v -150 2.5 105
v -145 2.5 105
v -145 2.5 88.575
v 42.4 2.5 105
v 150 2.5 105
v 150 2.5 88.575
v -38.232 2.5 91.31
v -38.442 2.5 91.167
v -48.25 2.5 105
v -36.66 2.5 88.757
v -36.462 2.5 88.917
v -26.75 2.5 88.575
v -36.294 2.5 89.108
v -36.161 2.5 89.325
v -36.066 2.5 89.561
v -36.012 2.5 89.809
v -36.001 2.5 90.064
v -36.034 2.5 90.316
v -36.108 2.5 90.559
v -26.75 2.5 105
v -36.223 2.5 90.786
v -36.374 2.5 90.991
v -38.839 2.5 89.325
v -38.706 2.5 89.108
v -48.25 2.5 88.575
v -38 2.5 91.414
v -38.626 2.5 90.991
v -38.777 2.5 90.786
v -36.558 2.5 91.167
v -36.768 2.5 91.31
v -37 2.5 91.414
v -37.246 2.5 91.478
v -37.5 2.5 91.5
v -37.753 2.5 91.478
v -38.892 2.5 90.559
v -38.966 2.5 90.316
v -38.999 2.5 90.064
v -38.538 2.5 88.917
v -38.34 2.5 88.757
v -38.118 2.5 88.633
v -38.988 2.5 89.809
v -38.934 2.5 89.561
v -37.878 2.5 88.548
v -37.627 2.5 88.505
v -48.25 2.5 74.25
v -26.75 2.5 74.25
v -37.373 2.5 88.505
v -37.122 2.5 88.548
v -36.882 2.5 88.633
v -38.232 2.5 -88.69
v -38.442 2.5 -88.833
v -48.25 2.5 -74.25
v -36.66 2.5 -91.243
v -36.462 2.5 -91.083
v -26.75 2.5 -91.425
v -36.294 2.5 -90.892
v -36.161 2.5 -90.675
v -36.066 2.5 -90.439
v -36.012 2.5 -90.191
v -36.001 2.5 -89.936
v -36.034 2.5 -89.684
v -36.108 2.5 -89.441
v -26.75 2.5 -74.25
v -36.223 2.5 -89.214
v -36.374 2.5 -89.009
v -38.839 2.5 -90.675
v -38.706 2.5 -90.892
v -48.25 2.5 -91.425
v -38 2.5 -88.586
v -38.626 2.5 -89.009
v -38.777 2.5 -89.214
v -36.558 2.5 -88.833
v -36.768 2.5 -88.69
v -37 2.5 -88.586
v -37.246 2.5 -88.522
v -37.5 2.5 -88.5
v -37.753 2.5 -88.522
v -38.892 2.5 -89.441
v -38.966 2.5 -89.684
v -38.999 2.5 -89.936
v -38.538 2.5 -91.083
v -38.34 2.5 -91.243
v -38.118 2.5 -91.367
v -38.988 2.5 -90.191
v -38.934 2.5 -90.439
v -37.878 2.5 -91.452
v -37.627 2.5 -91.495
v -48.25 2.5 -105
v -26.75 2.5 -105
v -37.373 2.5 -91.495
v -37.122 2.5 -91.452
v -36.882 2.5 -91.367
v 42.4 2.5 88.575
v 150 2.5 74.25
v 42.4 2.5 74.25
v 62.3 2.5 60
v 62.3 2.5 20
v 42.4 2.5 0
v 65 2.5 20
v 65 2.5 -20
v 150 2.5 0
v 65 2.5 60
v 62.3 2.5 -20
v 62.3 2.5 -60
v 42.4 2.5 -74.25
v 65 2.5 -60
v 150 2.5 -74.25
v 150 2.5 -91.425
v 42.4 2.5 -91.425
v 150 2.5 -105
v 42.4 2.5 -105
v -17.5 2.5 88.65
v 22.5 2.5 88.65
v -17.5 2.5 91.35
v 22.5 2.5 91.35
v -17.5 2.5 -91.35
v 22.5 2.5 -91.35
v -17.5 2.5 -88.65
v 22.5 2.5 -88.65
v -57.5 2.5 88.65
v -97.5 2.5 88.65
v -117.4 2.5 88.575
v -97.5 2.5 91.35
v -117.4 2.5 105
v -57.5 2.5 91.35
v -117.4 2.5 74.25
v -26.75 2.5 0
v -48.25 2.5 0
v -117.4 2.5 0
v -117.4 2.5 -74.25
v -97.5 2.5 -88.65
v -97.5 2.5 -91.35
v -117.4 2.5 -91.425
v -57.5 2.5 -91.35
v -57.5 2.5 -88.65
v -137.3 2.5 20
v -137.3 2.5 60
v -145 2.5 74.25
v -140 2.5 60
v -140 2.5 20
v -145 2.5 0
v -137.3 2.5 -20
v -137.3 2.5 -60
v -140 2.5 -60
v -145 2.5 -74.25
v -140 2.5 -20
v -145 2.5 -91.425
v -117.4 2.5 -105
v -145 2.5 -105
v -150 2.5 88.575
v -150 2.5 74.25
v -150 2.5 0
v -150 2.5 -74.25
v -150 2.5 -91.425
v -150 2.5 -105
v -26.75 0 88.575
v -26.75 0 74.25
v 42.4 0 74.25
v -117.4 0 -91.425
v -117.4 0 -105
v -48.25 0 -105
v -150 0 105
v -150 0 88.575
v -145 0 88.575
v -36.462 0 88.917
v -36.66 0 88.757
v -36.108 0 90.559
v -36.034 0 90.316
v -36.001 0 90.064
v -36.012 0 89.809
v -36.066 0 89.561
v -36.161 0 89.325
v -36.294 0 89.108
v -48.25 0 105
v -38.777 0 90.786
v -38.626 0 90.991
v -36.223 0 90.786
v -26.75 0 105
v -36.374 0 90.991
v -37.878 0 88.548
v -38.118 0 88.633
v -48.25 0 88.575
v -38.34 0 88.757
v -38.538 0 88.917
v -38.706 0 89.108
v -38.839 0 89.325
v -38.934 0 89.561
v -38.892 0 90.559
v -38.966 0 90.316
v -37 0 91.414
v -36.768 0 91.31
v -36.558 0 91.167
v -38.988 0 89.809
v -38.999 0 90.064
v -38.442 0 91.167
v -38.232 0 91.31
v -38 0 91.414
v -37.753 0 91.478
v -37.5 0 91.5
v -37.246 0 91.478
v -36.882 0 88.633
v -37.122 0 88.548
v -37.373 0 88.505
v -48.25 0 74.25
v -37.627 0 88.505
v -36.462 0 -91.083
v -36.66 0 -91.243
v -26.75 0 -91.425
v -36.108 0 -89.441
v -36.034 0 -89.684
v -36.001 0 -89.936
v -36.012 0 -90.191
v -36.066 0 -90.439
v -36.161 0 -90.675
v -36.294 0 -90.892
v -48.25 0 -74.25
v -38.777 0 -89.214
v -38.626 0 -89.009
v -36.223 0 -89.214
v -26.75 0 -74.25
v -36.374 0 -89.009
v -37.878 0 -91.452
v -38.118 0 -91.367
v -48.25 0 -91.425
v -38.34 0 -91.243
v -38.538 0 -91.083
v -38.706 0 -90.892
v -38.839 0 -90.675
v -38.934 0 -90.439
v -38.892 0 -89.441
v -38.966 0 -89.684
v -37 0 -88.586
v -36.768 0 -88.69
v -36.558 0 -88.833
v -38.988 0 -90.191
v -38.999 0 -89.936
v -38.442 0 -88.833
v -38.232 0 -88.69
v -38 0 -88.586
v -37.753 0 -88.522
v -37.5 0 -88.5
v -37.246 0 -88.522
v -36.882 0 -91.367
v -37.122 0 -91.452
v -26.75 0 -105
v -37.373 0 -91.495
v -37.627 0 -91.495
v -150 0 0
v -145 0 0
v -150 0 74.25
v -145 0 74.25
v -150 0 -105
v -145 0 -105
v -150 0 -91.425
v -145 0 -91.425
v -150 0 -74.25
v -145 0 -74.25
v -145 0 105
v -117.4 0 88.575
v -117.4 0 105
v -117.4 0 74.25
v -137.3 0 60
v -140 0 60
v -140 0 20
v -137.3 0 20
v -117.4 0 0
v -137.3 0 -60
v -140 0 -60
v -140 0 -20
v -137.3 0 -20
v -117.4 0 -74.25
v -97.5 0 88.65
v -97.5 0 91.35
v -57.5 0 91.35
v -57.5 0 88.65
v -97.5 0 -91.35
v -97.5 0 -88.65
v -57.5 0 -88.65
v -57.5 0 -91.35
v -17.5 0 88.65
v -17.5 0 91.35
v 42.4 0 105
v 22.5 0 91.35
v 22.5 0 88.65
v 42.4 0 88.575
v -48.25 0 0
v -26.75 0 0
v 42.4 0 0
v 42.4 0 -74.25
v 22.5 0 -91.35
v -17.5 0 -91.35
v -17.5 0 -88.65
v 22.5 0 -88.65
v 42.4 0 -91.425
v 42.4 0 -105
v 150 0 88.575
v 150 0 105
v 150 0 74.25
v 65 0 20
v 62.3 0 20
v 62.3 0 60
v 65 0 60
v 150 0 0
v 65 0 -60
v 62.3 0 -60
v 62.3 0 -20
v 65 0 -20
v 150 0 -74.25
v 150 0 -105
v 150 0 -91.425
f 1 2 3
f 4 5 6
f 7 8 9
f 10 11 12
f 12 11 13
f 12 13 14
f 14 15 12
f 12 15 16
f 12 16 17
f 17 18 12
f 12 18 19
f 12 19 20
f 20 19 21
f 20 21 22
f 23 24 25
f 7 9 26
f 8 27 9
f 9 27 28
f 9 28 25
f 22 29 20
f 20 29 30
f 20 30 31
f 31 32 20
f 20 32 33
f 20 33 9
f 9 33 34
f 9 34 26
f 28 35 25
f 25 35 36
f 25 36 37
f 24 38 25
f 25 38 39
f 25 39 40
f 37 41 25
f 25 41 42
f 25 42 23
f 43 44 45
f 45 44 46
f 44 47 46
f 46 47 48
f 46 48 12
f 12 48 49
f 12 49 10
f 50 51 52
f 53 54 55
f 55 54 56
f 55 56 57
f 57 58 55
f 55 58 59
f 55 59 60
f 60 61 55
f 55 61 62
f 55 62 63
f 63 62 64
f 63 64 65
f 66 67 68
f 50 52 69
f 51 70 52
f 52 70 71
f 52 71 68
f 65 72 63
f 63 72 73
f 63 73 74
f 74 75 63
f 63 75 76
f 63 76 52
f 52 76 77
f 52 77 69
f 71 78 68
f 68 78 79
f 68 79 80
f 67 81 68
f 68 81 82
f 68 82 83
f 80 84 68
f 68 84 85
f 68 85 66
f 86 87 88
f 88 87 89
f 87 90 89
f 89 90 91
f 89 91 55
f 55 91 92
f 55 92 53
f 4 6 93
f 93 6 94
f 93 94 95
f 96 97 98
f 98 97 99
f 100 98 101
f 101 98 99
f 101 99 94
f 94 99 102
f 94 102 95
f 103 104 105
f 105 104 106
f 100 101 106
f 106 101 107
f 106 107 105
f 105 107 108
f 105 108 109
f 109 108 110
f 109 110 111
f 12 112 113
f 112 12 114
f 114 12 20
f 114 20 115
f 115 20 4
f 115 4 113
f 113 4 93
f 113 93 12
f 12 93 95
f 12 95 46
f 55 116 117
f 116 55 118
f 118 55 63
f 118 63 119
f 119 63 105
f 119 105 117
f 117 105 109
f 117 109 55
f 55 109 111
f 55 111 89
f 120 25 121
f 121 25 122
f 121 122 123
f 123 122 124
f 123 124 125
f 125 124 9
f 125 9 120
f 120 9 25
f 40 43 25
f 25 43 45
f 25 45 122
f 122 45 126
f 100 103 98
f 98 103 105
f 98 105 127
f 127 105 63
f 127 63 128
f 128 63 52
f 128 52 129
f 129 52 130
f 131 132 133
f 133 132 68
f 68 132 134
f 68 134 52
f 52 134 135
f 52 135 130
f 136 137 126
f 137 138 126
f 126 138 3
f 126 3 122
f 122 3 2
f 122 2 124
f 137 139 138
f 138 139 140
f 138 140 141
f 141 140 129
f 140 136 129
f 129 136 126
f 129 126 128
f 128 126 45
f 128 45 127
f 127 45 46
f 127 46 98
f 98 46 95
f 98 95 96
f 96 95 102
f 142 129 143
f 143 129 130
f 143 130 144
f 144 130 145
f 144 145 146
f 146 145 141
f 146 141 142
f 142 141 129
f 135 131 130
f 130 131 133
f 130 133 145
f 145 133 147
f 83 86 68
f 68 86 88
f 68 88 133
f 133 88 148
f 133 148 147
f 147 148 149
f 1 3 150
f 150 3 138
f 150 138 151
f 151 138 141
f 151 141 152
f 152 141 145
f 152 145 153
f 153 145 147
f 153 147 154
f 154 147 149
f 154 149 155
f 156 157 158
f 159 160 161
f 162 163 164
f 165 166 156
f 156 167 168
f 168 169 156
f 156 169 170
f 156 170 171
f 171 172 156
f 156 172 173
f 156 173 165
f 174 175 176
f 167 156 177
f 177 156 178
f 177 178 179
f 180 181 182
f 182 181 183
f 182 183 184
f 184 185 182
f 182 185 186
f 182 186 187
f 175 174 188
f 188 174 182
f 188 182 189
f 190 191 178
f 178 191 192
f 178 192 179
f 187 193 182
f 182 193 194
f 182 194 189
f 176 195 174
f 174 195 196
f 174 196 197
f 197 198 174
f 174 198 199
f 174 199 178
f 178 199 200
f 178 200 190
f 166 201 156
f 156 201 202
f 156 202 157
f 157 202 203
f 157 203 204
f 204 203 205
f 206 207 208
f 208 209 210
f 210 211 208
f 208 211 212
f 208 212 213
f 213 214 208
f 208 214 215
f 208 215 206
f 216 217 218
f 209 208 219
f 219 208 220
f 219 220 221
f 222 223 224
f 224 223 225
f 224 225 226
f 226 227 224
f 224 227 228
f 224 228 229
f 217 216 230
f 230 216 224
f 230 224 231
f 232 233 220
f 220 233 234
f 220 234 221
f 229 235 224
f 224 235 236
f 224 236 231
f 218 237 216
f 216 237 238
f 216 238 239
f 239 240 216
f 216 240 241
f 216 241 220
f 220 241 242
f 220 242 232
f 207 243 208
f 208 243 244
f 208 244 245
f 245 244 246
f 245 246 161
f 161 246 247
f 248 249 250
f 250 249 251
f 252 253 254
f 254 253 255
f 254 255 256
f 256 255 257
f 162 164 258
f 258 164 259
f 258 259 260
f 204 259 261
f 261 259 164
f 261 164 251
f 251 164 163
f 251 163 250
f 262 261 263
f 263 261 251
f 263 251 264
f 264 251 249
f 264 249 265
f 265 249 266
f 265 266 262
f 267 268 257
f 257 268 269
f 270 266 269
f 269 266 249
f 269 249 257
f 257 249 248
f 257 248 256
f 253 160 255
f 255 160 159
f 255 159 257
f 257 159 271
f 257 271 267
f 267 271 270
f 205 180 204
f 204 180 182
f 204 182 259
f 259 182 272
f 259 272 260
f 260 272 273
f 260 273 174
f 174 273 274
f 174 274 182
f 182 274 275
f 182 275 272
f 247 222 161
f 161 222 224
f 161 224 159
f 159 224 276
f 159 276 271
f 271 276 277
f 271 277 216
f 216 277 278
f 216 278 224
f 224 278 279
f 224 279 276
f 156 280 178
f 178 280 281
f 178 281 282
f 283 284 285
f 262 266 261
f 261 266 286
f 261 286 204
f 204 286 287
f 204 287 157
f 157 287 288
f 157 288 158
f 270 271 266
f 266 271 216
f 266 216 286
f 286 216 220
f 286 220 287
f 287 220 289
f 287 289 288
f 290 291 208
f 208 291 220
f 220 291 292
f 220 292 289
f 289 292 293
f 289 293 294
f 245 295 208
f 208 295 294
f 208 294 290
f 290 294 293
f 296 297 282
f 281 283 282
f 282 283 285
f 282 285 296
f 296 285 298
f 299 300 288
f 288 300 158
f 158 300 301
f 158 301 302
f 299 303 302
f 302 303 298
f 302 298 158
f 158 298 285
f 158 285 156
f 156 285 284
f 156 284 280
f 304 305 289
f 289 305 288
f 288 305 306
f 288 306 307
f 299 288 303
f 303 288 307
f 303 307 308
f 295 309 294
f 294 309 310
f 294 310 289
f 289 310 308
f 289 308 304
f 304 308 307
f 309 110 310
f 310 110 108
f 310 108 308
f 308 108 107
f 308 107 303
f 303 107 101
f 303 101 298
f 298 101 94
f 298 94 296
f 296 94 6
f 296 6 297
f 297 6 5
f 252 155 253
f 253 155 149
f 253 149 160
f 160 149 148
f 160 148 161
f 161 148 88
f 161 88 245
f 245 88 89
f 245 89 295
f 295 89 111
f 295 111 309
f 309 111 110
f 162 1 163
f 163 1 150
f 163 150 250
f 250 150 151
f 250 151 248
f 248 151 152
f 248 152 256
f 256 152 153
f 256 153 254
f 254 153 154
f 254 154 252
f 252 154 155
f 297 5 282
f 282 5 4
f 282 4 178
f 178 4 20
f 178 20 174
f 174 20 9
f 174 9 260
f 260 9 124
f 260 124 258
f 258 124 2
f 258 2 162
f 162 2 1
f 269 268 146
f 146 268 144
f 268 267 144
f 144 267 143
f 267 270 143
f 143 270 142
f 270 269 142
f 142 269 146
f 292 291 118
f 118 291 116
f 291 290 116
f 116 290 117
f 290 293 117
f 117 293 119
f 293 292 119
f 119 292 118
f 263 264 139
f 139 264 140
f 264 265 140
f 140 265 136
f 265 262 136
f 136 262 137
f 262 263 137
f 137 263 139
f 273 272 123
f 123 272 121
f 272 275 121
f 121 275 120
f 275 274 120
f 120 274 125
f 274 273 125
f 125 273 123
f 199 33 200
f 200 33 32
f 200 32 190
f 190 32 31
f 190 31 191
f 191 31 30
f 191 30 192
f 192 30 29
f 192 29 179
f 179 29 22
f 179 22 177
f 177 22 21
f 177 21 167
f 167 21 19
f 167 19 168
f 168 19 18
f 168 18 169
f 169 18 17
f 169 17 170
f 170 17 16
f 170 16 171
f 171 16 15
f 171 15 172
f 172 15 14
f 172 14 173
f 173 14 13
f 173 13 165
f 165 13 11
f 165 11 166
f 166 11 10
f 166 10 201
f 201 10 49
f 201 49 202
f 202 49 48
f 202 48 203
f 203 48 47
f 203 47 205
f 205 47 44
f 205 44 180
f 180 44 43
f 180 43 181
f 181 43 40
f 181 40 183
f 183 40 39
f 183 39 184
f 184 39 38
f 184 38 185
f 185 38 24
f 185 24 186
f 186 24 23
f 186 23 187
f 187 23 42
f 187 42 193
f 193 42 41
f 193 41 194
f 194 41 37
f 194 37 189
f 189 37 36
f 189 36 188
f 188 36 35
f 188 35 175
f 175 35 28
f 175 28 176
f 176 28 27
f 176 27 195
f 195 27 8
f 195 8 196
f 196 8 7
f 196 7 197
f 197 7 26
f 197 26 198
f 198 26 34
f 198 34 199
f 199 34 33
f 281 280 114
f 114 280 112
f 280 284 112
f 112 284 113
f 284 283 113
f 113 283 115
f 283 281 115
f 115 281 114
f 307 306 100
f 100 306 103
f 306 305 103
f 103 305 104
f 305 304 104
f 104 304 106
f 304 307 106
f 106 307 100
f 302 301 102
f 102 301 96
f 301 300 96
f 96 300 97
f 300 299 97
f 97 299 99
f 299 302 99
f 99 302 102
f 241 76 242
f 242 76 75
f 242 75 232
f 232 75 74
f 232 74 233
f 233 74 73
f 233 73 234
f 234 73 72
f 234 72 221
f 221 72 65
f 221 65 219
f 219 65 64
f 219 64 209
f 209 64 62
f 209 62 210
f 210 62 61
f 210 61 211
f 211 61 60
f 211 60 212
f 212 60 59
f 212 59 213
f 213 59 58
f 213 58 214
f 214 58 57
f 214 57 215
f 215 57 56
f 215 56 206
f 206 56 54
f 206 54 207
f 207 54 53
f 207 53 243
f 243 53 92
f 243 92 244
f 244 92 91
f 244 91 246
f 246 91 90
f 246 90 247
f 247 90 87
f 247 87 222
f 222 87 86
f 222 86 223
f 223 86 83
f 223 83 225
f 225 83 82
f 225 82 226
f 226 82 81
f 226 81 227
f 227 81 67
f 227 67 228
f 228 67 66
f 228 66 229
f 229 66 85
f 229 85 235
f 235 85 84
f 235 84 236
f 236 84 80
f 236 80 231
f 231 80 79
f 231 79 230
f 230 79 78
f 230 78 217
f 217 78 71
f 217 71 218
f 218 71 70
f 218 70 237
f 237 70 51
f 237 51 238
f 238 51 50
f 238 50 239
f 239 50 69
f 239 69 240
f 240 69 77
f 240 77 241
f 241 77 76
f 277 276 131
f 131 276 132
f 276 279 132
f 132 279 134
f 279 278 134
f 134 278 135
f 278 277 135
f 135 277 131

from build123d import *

# Parameters (mm, degrees)
SKETCH1_W           = 300
SKETCH1_H           = 210
BOSS_EXTRUDE1_DEPTH = 2.5
SKETCH4_W           = 2.7
SKETCH4_H           = 40
SKETCH4_W_2         = 40
SKETCH4_H_2         = 2.7
SKETCH4_R           = 1.5
CUT_EXTRUDE1_DEPTH  = 2.5


with BuildPart() as part:
    # Sketch1 → Boss-Extrude1 (new body)
    with BuildSketch(Plane(origin=(0, 0, 0), x_dir=(1, 0, 0), z_dir=(0, 1, 0))):
        Rectangle(SKETCH1_W, SKETCH1_H)
    extrude(amount=BOSS_EXTRUDE1_DEPTH)

    # Sketch4 → Cut-Extrude1 (cut)
    with BuildSketch(Plane(origin=(0, 2.5, 0), x_dir=(1, 0, 0), z_dir=(0, 1, 0))):
        with Locations((-138.65, 40)):
            Rectangle(SKETCH4_W, SKETCH4_H)
        with Locations((-138.65, -40)):
            Rectangle(SKETCH4_W, SKETCH4_H)
        with Locations((-77.5, -90)):
            Rectangle(SKETCH4_W_2, SKETCH4_H_2)
        with Locations(Location((-37.5, -90, 0), (0, 0, 270))):
            Circle(SKETCH4_R)
        with Locations((2.5, -90)):
            Rectangle(SKETCH4_W_2, SKETCH4_H_2)
        with Locations((63.65, 40)):
            Rectangle(SKETCH4_W, SKETCH4_H)
        with Locations((63.65, -40)):
            Rectangle(SKETCH4_W, SKETCH4_H)
        with Locations(Location((-37.5, 90, 0), (0, 0, 270))):
            Circle(SKETCH4_R)
        with Locations((-77.5, 90)):
            Rectangle(SKETCH4_W_2, SKETCH4_H_2)
        with Locations((2.5, 90)):
            Rectangle(SKETCH4_W_2, SKETCH4_H_2)
    extrude(amount=-CUT_EXTRUDE1_DEPTH, mode=Mode.SUBTRACT)


solid = part.part
